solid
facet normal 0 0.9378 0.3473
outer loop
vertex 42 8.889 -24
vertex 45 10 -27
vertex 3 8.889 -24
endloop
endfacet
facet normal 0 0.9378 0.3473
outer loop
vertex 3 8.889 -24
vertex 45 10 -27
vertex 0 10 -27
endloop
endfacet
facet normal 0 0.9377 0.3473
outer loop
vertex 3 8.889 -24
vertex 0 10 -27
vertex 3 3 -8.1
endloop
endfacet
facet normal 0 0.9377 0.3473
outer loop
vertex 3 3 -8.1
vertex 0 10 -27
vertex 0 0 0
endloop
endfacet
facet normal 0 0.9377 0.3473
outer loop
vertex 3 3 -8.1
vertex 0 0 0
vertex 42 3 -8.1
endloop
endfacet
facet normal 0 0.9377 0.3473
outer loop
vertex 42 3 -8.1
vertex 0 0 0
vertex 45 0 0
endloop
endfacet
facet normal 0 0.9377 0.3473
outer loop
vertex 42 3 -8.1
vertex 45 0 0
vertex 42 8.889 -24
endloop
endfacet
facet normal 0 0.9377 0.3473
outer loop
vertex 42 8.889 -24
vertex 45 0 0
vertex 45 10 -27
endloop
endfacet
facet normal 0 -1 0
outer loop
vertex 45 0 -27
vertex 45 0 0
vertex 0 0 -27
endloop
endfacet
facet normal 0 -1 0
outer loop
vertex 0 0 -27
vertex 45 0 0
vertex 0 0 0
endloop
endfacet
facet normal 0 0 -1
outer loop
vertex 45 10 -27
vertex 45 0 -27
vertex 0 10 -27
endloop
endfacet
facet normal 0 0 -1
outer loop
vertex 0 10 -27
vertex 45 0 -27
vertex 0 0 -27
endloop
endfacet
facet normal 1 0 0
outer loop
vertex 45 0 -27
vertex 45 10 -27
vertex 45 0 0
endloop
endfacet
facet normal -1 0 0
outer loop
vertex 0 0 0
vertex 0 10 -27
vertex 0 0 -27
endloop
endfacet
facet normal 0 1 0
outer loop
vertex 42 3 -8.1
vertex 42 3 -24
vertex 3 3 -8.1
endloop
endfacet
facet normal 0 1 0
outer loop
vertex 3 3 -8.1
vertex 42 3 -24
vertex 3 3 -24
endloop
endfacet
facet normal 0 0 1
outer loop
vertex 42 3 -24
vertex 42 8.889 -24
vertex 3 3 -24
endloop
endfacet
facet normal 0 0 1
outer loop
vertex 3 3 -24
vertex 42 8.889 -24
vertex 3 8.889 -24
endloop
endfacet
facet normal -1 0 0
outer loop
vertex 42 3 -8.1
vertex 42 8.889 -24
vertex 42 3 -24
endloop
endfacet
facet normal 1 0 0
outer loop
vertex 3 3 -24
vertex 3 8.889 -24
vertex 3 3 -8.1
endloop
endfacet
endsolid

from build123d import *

# Parameters (mm, degrees)
SALIENTE_EXTRUIR1_DEPTH = 45
VACIADO1_T              = -3


with BuildPart() as part:
    # Croquis1 → Saliente-Extruir1 (new body)
    with BuildSketch(Plane(origin=(0, 0, 0), x_dir=(0, 0, -1), z_dir=(1, 0, 0))):
        Polygon((0, 0), (27, 10), (27, 0), align=None)
    extrude(amount=SALIENTE_EXTRUIR1_DEPTH)

    # Vaciado1
    vaciado1_openings = [part.faces().sort_by_distance(p)[0] for p in [
        (22.5, 5, -13.5),
    ]]
    offset(amount=VACIADO1_T, openings=vaciado1_openings, kind=Kind.INTERSECTION)


solid = part.part
